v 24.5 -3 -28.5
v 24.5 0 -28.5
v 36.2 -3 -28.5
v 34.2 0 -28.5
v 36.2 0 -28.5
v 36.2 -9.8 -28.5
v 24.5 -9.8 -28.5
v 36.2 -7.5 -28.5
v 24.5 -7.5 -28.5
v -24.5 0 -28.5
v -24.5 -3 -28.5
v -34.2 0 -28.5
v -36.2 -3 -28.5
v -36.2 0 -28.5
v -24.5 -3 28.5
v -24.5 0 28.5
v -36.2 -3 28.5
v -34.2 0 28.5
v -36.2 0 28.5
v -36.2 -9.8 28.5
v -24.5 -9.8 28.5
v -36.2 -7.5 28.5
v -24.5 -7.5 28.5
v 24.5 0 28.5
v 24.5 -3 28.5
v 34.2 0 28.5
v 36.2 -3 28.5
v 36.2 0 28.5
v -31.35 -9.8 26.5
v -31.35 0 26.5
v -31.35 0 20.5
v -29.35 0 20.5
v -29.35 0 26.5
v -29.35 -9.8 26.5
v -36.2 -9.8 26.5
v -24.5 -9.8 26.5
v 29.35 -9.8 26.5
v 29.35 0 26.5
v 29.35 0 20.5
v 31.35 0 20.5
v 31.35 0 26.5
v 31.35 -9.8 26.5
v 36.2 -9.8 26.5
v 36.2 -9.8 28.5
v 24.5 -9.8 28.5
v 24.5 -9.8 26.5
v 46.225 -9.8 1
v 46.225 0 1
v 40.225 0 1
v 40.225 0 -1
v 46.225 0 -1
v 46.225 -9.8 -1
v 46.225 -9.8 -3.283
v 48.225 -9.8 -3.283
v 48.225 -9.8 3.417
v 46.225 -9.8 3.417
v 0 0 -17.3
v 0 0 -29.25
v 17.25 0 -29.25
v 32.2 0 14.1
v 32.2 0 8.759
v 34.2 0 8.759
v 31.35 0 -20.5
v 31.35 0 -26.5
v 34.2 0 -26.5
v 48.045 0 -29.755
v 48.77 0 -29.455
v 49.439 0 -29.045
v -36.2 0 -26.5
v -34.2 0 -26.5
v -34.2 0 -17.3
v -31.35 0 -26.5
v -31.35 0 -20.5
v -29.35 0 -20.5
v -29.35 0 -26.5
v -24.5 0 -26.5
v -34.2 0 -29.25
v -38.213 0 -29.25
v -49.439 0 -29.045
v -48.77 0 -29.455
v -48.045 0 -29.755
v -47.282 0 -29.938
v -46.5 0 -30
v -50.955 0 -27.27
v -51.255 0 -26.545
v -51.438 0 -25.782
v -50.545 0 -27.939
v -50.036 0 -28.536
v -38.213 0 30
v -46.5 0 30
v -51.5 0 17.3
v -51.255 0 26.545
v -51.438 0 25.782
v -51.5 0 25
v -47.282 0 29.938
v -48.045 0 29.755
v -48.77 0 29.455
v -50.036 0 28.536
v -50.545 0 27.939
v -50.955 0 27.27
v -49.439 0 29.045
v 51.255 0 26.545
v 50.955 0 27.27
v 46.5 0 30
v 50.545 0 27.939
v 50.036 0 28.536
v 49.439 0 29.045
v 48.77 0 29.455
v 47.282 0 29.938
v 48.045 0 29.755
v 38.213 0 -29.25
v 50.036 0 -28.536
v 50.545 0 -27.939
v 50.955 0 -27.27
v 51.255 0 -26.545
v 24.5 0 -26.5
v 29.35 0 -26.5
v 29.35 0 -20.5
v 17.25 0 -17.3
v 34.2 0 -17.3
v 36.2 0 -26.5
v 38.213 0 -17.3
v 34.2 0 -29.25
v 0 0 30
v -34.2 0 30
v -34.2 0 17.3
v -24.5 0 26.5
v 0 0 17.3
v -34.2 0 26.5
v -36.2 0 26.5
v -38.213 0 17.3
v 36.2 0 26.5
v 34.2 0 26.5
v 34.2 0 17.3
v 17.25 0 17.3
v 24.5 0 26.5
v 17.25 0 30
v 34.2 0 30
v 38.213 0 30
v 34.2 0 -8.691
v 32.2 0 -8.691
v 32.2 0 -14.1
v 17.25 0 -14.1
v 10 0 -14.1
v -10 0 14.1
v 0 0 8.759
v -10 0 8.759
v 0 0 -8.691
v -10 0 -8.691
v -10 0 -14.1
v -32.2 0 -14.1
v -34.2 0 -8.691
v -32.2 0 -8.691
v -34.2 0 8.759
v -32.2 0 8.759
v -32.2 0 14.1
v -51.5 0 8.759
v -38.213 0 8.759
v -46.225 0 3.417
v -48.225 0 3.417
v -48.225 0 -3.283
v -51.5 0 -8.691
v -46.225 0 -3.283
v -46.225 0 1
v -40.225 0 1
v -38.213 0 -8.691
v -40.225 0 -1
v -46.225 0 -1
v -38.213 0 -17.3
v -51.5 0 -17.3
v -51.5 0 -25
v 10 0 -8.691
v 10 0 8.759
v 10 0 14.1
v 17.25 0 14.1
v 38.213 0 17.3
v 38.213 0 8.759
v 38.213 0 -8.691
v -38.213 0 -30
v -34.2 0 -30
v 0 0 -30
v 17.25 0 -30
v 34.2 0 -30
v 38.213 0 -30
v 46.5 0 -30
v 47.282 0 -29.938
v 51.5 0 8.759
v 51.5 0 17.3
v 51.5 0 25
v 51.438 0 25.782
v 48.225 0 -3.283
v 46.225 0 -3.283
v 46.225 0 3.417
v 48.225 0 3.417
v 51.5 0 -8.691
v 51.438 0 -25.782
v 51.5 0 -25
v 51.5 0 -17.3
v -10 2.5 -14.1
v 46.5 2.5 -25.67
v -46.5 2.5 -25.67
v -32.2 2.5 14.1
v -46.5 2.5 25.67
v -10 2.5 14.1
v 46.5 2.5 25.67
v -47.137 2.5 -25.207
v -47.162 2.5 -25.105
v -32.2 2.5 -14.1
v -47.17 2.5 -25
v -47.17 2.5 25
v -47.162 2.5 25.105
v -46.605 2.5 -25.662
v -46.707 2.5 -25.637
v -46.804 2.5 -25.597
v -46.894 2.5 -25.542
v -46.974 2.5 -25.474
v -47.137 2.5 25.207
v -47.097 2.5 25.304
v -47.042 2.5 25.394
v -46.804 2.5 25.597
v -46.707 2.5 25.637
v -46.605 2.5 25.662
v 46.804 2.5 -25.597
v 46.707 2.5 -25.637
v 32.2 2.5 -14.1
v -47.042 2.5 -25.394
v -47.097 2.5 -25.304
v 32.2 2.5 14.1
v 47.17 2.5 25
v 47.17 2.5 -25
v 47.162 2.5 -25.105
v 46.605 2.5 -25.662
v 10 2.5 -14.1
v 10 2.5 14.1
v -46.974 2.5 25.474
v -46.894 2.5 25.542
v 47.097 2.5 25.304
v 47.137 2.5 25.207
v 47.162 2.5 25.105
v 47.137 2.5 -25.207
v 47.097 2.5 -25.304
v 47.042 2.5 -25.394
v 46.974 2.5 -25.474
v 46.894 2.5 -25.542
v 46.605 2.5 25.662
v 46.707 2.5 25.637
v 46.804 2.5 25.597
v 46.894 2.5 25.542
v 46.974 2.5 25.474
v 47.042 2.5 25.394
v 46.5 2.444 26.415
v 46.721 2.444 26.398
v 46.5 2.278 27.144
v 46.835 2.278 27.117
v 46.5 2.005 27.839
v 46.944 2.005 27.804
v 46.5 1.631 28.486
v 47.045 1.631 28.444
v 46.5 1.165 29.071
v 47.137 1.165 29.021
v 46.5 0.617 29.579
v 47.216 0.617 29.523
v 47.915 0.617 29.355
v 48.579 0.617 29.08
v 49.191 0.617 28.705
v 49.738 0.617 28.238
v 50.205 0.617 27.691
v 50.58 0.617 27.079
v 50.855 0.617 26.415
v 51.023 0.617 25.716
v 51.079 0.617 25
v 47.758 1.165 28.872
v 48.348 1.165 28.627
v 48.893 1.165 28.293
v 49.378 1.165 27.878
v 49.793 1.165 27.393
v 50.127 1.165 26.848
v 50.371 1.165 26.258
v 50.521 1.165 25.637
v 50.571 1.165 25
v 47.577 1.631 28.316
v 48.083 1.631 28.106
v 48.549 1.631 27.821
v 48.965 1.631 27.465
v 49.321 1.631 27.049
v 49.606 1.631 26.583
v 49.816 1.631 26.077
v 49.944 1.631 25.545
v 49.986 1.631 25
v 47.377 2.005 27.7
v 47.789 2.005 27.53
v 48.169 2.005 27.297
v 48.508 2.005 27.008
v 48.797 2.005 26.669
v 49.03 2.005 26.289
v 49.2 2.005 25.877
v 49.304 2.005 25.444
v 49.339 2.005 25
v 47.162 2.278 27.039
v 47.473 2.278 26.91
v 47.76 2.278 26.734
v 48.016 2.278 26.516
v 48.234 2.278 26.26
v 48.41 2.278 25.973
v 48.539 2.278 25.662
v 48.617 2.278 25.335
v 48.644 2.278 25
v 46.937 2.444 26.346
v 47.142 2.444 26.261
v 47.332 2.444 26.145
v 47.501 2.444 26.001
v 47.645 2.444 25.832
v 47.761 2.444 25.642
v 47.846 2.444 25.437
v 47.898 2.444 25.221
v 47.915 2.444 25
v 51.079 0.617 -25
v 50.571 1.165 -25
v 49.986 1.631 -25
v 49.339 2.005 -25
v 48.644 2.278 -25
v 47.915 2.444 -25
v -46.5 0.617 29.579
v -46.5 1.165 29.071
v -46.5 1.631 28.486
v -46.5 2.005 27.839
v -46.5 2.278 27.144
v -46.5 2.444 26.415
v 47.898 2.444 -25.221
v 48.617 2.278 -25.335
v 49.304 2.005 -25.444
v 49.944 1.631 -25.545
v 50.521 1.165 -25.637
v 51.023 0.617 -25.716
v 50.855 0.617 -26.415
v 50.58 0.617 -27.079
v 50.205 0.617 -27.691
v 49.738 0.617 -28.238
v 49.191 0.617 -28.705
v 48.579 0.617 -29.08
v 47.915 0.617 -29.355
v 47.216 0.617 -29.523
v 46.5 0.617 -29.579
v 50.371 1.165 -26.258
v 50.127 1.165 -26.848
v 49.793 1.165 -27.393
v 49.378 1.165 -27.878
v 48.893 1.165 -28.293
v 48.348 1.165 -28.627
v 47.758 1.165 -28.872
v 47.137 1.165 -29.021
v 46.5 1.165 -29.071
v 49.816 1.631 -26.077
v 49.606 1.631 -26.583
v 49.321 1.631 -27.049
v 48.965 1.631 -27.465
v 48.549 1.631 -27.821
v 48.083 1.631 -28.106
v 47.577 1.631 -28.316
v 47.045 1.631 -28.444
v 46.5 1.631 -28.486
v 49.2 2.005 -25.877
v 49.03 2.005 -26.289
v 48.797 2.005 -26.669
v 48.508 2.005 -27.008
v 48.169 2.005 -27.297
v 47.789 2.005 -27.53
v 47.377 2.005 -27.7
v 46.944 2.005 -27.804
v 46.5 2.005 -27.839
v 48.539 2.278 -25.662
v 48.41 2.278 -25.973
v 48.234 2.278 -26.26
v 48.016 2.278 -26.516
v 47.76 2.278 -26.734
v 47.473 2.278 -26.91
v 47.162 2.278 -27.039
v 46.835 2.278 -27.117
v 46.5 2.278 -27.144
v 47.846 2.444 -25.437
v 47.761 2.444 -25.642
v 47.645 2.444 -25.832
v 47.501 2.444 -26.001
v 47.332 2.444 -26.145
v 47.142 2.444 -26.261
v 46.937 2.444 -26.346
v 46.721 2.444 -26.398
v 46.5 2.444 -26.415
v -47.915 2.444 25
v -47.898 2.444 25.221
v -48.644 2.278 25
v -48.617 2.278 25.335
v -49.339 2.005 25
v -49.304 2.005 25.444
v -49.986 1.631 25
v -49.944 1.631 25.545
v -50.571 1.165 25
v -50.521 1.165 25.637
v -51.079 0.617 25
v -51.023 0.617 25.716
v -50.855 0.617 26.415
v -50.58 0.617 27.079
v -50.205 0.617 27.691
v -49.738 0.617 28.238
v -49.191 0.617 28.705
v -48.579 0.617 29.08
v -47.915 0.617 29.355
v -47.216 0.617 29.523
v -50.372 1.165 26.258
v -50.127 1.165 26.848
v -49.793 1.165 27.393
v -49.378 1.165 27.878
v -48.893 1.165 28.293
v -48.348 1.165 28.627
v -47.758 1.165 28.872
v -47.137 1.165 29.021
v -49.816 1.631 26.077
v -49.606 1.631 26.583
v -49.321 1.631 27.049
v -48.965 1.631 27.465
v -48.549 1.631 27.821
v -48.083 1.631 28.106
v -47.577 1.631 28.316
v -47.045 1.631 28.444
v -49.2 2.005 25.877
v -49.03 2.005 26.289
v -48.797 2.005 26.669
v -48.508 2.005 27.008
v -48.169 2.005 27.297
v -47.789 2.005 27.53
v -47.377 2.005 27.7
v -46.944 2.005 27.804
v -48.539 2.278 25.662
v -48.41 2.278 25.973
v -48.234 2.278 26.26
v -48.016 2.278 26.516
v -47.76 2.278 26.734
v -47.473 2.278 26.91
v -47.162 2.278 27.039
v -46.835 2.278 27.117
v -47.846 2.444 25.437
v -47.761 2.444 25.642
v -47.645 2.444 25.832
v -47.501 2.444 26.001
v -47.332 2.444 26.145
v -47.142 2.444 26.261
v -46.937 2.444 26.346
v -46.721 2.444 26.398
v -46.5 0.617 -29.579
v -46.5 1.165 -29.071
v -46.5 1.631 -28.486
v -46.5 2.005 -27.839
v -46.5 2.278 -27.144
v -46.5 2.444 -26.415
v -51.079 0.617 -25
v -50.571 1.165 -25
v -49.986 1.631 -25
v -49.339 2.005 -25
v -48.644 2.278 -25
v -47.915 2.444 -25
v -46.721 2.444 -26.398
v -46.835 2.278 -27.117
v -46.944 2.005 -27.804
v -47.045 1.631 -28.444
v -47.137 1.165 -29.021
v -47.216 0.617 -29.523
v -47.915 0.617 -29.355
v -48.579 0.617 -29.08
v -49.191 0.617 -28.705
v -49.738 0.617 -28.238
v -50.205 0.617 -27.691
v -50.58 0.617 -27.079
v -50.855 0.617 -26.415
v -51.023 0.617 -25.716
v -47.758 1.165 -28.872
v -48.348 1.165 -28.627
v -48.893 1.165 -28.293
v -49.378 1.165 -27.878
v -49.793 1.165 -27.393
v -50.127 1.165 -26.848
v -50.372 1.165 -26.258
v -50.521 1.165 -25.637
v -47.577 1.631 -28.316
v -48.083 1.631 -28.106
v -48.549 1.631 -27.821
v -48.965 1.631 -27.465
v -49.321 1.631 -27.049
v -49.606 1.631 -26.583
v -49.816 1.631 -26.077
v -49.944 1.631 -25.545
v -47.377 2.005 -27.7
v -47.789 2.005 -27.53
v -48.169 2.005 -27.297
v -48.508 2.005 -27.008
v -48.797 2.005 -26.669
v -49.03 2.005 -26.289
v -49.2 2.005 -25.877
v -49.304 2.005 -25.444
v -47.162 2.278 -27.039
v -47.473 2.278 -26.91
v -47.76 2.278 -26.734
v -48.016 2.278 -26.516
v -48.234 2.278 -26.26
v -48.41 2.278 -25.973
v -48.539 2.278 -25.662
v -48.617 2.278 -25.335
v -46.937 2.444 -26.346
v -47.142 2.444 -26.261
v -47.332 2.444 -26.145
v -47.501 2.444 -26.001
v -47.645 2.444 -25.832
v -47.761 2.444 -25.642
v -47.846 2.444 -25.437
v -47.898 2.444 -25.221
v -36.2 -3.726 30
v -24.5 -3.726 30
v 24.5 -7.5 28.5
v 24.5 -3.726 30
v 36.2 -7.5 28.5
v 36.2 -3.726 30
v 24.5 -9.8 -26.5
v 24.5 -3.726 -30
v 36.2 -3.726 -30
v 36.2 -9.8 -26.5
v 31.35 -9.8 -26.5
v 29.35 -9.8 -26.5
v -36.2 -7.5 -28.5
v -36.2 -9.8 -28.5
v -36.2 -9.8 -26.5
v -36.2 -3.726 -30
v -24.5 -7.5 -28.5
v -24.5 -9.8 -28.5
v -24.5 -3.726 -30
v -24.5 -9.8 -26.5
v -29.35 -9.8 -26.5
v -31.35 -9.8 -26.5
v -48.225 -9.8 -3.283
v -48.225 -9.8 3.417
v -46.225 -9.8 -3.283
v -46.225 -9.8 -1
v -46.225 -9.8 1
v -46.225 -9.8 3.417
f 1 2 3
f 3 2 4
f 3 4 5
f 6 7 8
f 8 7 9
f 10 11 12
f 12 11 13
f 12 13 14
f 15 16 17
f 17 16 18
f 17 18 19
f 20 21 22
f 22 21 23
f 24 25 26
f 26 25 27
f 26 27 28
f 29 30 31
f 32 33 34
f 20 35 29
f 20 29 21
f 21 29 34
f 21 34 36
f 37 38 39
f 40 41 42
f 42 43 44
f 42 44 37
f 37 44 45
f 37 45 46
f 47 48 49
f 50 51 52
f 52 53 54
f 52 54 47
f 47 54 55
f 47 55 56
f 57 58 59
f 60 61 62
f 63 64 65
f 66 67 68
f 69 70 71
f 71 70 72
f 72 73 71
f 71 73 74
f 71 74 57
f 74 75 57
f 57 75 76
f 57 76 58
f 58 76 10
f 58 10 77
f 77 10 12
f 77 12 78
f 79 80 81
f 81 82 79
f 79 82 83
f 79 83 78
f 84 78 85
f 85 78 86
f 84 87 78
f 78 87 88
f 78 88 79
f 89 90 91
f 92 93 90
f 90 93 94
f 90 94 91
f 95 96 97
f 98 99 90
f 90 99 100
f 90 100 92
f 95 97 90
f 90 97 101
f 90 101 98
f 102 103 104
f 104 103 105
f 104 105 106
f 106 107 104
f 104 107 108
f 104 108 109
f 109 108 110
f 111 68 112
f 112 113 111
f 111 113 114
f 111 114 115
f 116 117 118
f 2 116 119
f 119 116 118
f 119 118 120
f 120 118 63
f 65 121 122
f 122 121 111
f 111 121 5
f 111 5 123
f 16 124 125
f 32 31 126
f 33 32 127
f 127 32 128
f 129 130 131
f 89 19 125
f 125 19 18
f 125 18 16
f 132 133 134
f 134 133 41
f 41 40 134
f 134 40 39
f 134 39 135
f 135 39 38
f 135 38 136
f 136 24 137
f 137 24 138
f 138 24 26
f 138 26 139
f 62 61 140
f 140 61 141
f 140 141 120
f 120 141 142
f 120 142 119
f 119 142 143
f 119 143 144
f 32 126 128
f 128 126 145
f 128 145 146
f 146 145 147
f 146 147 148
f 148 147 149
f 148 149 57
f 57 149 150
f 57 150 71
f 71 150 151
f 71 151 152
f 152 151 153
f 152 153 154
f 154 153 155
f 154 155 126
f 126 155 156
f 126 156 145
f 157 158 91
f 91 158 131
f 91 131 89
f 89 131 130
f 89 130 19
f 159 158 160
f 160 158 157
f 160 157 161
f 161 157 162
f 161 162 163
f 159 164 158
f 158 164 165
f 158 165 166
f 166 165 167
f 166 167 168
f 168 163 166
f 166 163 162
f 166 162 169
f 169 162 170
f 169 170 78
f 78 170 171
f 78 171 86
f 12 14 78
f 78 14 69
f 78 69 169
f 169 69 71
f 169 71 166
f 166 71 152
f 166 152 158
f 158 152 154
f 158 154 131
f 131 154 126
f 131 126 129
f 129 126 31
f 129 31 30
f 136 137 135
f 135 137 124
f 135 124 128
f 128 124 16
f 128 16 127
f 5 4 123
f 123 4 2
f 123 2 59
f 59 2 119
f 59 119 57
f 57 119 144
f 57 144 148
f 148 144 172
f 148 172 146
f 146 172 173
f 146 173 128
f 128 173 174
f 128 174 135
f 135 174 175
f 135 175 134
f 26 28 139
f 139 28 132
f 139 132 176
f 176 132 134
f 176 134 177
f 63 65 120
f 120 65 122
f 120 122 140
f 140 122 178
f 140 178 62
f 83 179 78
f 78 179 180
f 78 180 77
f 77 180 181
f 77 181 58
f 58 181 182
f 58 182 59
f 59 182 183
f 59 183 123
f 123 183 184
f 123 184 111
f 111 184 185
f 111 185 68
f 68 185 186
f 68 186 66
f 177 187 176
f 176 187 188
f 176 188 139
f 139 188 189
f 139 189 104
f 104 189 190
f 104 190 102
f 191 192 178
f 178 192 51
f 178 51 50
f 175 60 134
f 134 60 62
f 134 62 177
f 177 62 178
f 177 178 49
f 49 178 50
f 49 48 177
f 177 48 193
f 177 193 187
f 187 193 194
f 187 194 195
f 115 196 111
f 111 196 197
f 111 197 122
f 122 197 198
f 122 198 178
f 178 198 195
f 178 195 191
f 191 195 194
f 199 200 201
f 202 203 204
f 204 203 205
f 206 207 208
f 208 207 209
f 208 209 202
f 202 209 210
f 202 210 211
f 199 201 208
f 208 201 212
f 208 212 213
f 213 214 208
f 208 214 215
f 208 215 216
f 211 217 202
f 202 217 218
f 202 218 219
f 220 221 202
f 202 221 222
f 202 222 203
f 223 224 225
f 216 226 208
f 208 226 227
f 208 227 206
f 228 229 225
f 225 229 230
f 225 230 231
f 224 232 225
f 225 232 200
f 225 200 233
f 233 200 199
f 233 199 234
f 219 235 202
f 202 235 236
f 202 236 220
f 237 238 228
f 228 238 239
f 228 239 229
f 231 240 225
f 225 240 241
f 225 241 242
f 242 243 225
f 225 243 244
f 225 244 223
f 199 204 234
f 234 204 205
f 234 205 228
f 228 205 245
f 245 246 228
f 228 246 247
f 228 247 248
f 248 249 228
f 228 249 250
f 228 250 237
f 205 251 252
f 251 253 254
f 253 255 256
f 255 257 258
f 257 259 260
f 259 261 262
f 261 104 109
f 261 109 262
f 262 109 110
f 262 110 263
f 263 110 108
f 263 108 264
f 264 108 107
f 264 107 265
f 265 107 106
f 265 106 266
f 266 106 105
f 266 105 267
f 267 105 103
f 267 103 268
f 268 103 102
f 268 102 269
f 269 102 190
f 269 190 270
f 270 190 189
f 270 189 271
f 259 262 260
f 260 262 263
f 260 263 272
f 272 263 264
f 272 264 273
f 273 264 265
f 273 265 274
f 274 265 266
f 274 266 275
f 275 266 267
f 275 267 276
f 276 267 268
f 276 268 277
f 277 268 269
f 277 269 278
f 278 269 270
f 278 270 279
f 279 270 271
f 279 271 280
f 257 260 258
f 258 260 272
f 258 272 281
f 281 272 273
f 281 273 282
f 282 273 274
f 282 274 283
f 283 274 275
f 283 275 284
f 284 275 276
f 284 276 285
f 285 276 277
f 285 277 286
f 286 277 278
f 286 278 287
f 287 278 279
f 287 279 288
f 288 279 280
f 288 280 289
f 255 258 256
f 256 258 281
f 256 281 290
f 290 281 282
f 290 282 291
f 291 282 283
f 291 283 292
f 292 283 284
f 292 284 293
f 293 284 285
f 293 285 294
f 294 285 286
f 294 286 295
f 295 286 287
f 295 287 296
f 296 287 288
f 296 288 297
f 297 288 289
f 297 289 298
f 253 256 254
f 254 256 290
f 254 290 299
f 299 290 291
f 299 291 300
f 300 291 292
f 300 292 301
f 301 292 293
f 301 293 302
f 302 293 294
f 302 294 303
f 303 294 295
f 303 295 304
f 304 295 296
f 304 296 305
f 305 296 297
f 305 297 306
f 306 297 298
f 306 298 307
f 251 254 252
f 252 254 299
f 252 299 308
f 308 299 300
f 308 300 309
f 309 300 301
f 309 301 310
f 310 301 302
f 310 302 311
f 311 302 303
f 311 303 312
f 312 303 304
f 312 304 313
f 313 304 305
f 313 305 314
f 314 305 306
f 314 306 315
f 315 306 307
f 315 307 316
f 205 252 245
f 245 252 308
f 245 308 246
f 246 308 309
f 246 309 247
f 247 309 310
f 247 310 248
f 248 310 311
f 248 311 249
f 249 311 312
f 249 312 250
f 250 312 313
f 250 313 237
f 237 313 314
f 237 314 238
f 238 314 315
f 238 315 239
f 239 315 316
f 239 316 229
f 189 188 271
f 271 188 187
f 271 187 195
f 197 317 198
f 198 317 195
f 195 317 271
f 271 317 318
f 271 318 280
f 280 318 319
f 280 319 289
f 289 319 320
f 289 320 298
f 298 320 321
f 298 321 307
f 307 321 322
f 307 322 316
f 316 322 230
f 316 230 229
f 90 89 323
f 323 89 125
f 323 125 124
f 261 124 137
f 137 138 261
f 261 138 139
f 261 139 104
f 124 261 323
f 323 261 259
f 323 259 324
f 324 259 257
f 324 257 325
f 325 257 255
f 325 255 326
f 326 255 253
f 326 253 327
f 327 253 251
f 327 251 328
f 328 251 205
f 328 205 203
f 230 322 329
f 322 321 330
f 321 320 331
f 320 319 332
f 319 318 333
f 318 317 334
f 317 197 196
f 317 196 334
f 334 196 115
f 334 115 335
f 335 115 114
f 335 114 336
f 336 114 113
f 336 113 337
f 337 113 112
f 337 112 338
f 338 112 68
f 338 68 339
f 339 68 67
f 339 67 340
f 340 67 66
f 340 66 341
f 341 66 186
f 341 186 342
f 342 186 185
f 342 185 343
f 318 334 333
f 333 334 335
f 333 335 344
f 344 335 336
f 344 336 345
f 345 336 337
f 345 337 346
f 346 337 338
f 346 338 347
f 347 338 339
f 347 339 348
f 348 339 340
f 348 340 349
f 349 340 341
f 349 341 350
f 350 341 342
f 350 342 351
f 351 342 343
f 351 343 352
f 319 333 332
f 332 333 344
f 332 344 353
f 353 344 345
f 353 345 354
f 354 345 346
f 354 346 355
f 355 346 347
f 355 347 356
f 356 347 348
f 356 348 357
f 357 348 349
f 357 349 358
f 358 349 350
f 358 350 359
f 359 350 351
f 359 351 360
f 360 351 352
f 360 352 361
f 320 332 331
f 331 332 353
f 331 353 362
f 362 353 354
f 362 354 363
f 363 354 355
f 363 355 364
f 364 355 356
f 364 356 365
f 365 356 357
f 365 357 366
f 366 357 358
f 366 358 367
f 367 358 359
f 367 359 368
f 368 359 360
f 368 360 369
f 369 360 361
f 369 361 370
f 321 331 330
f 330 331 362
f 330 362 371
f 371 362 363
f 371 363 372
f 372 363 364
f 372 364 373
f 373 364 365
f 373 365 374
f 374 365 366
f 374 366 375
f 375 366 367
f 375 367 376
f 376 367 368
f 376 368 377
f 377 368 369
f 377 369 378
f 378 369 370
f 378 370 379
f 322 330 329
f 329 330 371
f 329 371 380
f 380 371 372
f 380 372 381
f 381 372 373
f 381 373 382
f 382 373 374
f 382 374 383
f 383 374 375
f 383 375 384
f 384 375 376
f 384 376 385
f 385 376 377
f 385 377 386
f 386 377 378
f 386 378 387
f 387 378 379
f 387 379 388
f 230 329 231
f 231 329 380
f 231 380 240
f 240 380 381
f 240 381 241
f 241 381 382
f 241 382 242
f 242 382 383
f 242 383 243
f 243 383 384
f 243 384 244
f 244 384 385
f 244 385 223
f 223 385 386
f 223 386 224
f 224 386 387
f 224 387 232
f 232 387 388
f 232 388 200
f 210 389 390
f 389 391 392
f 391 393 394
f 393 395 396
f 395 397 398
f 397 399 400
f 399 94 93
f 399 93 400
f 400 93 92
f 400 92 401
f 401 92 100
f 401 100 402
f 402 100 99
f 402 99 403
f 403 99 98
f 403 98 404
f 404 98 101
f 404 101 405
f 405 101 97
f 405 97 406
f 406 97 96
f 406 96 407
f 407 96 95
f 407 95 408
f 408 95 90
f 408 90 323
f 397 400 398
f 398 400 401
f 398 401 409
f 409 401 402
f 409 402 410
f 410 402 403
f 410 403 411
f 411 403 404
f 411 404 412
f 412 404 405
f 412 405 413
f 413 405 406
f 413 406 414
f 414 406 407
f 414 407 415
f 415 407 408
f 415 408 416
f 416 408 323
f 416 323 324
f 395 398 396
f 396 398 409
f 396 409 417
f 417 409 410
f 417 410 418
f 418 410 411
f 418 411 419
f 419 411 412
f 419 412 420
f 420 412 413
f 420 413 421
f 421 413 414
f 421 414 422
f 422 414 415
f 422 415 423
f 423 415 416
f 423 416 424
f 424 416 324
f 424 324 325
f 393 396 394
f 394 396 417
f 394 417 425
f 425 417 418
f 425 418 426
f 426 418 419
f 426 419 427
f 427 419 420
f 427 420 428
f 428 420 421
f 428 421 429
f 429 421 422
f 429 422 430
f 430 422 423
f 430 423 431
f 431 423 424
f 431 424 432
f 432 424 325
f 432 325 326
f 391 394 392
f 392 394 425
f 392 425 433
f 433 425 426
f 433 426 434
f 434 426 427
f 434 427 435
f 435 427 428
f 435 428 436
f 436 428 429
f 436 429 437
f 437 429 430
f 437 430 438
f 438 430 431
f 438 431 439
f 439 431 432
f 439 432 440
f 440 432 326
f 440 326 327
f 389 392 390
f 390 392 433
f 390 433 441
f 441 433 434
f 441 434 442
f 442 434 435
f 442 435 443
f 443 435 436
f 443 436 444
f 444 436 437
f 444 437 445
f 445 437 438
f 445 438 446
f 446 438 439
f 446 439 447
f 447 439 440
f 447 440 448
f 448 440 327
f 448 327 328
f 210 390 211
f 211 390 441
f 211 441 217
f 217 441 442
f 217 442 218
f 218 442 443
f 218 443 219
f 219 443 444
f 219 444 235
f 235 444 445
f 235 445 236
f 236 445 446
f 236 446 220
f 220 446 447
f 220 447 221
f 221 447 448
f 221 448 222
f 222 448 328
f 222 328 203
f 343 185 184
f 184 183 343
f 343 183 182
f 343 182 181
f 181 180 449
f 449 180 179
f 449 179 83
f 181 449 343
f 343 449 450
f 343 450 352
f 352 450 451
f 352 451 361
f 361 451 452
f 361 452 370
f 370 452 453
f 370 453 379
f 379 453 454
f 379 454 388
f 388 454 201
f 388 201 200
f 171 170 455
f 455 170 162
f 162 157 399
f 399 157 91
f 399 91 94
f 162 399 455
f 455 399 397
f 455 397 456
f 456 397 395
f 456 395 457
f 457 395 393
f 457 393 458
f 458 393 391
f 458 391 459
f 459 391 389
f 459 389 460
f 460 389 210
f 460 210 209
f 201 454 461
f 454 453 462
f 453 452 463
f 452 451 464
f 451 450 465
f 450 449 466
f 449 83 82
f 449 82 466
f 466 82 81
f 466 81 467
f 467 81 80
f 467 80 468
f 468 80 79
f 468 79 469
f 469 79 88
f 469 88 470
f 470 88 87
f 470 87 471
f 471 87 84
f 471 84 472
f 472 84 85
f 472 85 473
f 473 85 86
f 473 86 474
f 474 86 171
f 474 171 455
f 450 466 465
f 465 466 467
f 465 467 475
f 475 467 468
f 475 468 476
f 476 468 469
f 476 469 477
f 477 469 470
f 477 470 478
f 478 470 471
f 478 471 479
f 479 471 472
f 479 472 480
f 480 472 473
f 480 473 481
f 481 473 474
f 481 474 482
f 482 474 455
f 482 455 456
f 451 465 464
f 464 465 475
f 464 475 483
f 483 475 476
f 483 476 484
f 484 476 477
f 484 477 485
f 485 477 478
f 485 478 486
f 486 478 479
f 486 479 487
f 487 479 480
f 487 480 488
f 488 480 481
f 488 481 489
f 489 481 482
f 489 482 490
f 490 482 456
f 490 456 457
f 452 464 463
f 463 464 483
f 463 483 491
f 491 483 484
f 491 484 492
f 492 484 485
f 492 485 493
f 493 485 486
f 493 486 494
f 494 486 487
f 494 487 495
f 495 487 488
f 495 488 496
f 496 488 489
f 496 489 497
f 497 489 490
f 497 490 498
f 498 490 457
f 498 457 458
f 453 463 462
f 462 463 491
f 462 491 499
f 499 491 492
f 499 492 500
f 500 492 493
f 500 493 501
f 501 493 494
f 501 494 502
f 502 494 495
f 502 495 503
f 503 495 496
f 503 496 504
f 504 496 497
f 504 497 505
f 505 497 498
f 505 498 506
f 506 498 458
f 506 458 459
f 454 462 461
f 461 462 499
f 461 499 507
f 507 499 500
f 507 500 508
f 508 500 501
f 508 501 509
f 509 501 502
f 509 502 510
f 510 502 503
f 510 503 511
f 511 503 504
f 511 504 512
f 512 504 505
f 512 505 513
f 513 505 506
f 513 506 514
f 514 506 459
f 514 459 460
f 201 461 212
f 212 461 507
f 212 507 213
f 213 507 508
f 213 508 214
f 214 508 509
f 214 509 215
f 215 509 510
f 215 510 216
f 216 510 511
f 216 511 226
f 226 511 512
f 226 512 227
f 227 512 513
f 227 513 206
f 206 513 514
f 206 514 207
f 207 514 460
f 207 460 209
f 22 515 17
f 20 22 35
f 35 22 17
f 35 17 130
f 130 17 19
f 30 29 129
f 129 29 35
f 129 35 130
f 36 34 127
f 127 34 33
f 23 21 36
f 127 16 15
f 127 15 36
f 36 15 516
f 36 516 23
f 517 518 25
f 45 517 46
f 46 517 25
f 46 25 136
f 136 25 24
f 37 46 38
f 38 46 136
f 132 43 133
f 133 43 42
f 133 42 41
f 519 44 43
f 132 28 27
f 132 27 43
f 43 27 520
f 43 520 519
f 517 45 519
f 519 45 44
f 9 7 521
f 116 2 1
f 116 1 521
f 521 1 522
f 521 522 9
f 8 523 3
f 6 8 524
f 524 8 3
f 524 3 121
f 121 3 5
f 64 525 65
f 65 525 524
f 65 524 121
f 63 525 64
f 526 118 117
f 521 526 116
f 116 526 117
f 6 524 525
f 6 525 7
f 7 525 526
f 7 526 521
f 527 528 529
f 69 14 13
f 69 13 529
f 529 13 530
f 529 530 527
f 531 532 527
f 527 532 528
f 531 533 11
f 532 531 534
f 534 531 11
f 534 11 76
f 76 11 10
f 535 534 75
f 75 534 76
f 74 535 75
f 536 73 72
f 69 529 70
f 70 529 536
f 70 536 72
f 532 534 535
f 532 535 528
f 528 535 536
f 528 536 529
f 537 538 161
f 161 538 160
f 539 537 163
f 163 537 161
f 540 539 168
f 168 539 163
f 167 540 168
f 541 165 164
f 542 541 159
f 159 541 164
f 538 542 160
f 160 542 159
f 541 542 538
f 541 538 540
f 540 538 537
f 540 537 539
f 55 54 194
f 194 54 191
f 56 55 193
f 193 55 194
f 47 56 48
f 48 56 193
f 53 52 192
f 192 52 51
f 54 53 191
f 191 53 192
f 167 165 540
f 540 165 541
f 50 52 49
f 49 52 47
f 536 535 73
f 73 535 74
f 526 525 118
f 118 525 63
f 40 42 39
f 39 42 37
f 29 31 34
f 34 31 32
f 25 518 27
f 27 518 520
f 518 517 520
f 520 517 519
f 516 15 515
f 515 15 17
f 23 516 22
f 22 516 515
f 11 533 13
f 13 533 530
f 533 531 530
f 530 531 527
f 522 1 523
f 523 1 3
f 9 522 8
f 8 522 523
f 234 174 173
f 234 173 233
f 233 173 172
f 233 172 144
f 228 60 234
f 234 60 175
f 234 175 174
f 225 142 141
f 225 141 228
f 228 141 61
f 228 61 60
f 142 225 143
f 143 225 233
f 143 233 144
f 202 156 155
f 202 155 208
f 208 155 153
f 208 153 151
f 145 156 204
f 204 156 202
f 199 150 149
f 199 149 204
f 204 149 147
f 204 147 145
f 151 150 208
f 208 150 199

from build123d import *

# Parameters (mm, degrees)
BOSS_EXTRUDE1_DEPTH  = 2.5
FILLET1_R            = 5
BOSS_EXTRUDE2_DEPTH  = 9.8
CUT_EXTRUDE1_DEPTH   = 9.8
CUT_EXTRUDE2_DEPTH   = 89.657557489
BOSS_EXTRUDE3_DEPTH  = 11.7
MIRROR4_COPY_1_DEPTH = 11.7
SKETCH8_W            = 22.2
SKETCH8_H            = 28.2
CUT_EXTRUDE3_DEPTH   = 10


with BuildPart() as part:
    # Sketch1 → Boss-Extrude1 (new body)
    with BuildSketch(Plane(origin=(0, 0, 0), x_dir=(1, 0, 0), z_dir=(0, 1, 0))):
        with BuildLine():
            Line((-46.5, 30), (46.5, 30))
            ThreePointArc((46.5, 30), (50.035533906, 28.535533906), (51.5, 25))
            Line((51.5, 25), (51.5, -25))
            ThreePointArc((51.5, -25), (50.035533906, -28.535533906), (46.5, -30))
            Line((46.5, -30), (-46.5, -30))
            ThreePointArc((-46.5, -30), (-50.035533906, -28.535533906), (-51.5, -25))
            Line((-51.5, -25), (-51.5, 25))
            ThreePointArc((-51.5, 25), (-50.035533906, 28.535533906), (-46.5, 30))
        make_face()
    extrude(amount=BOSS_EXTRUDE1_DEPTH)

    # Fillet1
    # the kernel refuses this fillet: 5 mm, written as the material it takes off along each edge
    with BuildSketch(Plane(origin=(-46.5, 2.5, -25), x_dir=(-1, 0, 0), z_dir=(0, 0, 1))) as fillet1_piece_1:
        with BuildLine():
            CenterArc((0.669872981, 5), FILLET1_R, 270, 60)
            Line((0.669872981, 0), (0.669872981, -0.1))
            Line((0.669872981, -0.1), (5, -0.1))
            Line((5, -0.1), (5.1, 0))
            ThreePointArc((5.1, 0), (5.1, 1.25), (5.08660254, 2.45))
            Line((5.08660254, 2.45), (5, 2.5))
        make_face()
    revolve(axis=Axis((-46.5, 2.5, -25), (0, -1, 0)), revolution_arc=90, mode=Mode.SUBTRACT)
    with BuildSketch(Plane(origin=(-46.5, 2.5, -30), x_dir=(0, -1, 0), z_dir=(1, 0, 0)), Plane(origin=(46.5, 2.5, 30), x_dir=(0, -1, 0), z_dir=(-1, 0, 0))) as fillet1_piece_2:
        with BuildLine():
            CenterArc((5, -4.330127019), FILLET1_R, 120, 60)
            Line((0, -4.330127019), (-0.1, -4.330127019))
            Line((-0.1, -4.330127019), (-0.1, 0))
            Line((-0.1, 0), (0, 0.1))
            ThreePointArc((0, 0.1), (1.25, 0.1), (2.45, 0.08660254))
            Line((2.45, 0.08660254), (2.5, 0))
        make_face()
    extrude(amount=93, mode=Mode.SUBTRACT)
    with BuildSketch(Plane(origin=(46.5, 2.5, -25), x_dir=(0, 0, -1), z_dir=(-1, 0, 0))) as fillet1_piece_3:
        with BuildLine():
            CenterArc((0.669872981, 5), FILLET1_R, 270, 60)
            Line((0.669872981, 0), (0.669872981, -0.1))
            Line((0.669872981, -0.1), (5, -0.1))
            Line((5, -0.1), (5.1, 0))
            ThreePointArc((5.1, 0), (5.1, 1.25), (5.08660254, 2.45))
            Line((5.08660254, 2.45), (5, 2.5))
        make_face()
    revolve(axis=Axis((46.5, 2.5, -25), (0, -1, 0)), revolution_arc=90, mode=Mode.SUBTRACT)
    with BuildSketch(Plane(origin=(51.5, 2.5, -25), x_dir=(0, -1, 0), z_dir=(0, 0, 1)), Plane(origin=(-51.5, 2.5, 25), x_dir=(0, -1, 0), z_dir=(0, 0, -1))) as fillet1_piece_4:
        with BuildLine():
            CenterArc((5, -4.330127019), FILLET1_R, 120, 60)
            Line((0, -4.330127019), (-0.1, -4.330127019))
            Line((-0.1, -4.330127019), (-0.1, 0))
            Line((-0.1, 0), (0, 0.1))
            ThreePointArc((0, 0.1), (1.25, 0.1), (2.45, 0.08660254))
            Line((2.45, 0.08660254), (2.5, 0))
        make_face()
    extrude(amount=50, mode=Mode.SUBTRACT)
    with BuildSketch(Plane(origin=(46.5, 2.5, 25), x_dir=(1, 0, 0), z_dir=(0, 0, -1))) as fillet1_piece_5:
        with BuildLine():
            CenterArc((0.669872981, 5), FILLET1_R, 270, 60)
            Line((0.669872981, 0), (0.669872981, -0.1))
            Line((0.669872981, -0.1), (5, -0.1))
            Line((5, -0.1), (5.1, 0))
            ThreePointArc((5.1, 0), (5.1, 1.25), (5.08660254, 2.45))
            Line((5.08660254, 2.45), (5, 2.5))
        make_face()
    revolve(axis=Axis((46.5, 2.5, 25), (0, -1, 0)), revolution_arc=90, mode=Mode.SUBTRACT)
    with BuildSketch(Plane(origin=(-46.5, 2.5, 25), x_dir=(0, 0, 1), z_dir=(1, 0, 0))) as fillet1_piece_6:
        with BuildLine():
            CenterArc((0.669872981, 5), FILLET1_R, 270, 60)
            Line((0.669872981, 0), (0.669872981, -0.1))
            Line((0.669872981, -0.1), (5, -0.1))
            Line((5, -0.1), (5.1, 0))
            ThreePointArc((5.1, 0), (5.1, 1.25), (5.08660254, 2.45))
            Line((5.08660254, 2.45), (5, 2.5))
        make_face()
    revolve(axis=Axis((-46.5, 2.5, 25), (0, -1, 0)), revolution_arc=90, mode=Mode.SUBTRACT)

    # Sketch2 → Boss-Extrude2 (add)
    with BuildSketch(Plane.XZ):
        Polygon((-36.2, 28.5), (-24.5, 28.5), (-24.5, 26.5), (-29.35, 26.5), (-29.35, 20.5), (-31.35, 20.5), (-31.35, 26.5), (-36.2, 26.5), align=None)
        Polygon((48.225, -3.282847821), (46.225, -3.282847821), (46.225, -0.999790058), (40.225, -0.999790058), (40.225, 1), (46.225, 1), (46.225, 3.417152179), (48.225, 3.417152179), align=None)
        Polygon((24.5, 28.5), (36.2, 28.5), (36.2, 26.5), (31.35, 26.5), (31.35, 20.5), (29.35, 20.5), (29.35, 26.5), (24.5, 26.5), align=None)
        Polygon((24.5, -26.5), (29.35, -26.5), (29.35, -20.5), (31.35, -20.5), (31.35, -26.5), (36.2, -26.5), (36.2, -28.5), (24.5, -28.5), align=None)
        Polygon((-36.2, -28.5), (-24.5, -28.5), (-24.5, -26.5), (-29.35, -26.5), (-29.35, -20.5), (-31.35, -20.5), (-31.35, -26.5), (-36.2, -26.5), align=None)
        Polygon((-48.225, 3.417152179), (-46.225, 3.417152179), (-46.225, 1), (-40.225, 1), (-40.225, -0.999790058), (-46.225, -0.999790058), (-46.225, -3.282847821), (-48.225, -3.282847821), align=None)
    extrude(amount=BOSS_EXTRUDE2_DEPTH)

    # Sketch4 → Cut-Extrude1 (cut)
    with BuildSketch(Plane(origin=(0, 0, -0.999790058), x_dir=(-1, 0, 0), z_dir=(0, 0, -1))):
        Polygon((40.225, 0), (46.225, -9.8), (40.225, -9.8), align=None)
    cut_extrude1 = extrude(amount=-CUT_EXTRUDE1_DEPTH, mode=Mode.SUBTRACT)

    # Mirror1: Cut-Extrude1 across plane
    add(cut_extrude1.mirror(Plane(origin=(0, 0, 0), x_dir=(0, 0, 1), z_dir=(1, 0, 0))), mode=Mode.SUBTRACT)

    # Sketch5 → Cut-Extrude2 (cut, through all)
    with BuildSketch(Plane.ZY.offset(31.35)):
        Polygon((-26.5, -9.8), (-20.5, 0), (-20.5, -9.8), align=None)
    cut_extrude2 = extrude(amount=-CUT_EXTRUDE2_DEPTH, mode=Mode.SUBTRACT)

    # Mirror2: Cut-Extrude2 across plane
    add(cut_extrude2.mirror(Plane.XY), mode=Mode.SUBTRACT)

    # Sketch6 → Boss-Extrude3 (add)
    with BuildSketch(Plane(origin=(36.2, 0, 0), x_dir=(0, 0, -1), z_dir=(1, 0, 0))):
        Polygon((-28.5, -3), (-28.5, -7.5), (-30, -3.726144837), align=None)
    boss_extrude3 = extrude(amount=-BOSS_EXTRUDE3_DEPTH)

    # Mirror3: Boss-Extrude3 across plane
    add(boss_extrude3.mirror(Plane(origin=(0, 0, 0), x_dir=(0, 0, 1), z_dir=(1, 0, 0))))

    # Mirror4: Boss-Extrude3 across plane
    add(boss_extrude3.mirror(Plane.XY))

    # Mirror4 copy 1 sketch → Mirror4 copy 1 (add)
    with BuildSketch(Plane.ZY.offset(36.2)):
        Polygon((-28.5, -3), (-28.5, -7.5), (-30, -3.726144837), align=None)
    extrude(amount=-MIRROR4_COPY_1_DEPTH)

    # Sketch8 → Cut-Extrude3 (cut)
    with BuildSketch(Plane.XZ):
        with Locations((-21.1, 0)):
            Rectangle(SKETCH8_W, SKETCH8_H)
        with Locations((21.1, 0)):
            Rectangle(SKETCH8_W, SKETCH8_H)
    extrude(amount=-CUT_EXTRUDE3_DEPTH, mode=Mode.SUBTRACT)


solid = part.part
